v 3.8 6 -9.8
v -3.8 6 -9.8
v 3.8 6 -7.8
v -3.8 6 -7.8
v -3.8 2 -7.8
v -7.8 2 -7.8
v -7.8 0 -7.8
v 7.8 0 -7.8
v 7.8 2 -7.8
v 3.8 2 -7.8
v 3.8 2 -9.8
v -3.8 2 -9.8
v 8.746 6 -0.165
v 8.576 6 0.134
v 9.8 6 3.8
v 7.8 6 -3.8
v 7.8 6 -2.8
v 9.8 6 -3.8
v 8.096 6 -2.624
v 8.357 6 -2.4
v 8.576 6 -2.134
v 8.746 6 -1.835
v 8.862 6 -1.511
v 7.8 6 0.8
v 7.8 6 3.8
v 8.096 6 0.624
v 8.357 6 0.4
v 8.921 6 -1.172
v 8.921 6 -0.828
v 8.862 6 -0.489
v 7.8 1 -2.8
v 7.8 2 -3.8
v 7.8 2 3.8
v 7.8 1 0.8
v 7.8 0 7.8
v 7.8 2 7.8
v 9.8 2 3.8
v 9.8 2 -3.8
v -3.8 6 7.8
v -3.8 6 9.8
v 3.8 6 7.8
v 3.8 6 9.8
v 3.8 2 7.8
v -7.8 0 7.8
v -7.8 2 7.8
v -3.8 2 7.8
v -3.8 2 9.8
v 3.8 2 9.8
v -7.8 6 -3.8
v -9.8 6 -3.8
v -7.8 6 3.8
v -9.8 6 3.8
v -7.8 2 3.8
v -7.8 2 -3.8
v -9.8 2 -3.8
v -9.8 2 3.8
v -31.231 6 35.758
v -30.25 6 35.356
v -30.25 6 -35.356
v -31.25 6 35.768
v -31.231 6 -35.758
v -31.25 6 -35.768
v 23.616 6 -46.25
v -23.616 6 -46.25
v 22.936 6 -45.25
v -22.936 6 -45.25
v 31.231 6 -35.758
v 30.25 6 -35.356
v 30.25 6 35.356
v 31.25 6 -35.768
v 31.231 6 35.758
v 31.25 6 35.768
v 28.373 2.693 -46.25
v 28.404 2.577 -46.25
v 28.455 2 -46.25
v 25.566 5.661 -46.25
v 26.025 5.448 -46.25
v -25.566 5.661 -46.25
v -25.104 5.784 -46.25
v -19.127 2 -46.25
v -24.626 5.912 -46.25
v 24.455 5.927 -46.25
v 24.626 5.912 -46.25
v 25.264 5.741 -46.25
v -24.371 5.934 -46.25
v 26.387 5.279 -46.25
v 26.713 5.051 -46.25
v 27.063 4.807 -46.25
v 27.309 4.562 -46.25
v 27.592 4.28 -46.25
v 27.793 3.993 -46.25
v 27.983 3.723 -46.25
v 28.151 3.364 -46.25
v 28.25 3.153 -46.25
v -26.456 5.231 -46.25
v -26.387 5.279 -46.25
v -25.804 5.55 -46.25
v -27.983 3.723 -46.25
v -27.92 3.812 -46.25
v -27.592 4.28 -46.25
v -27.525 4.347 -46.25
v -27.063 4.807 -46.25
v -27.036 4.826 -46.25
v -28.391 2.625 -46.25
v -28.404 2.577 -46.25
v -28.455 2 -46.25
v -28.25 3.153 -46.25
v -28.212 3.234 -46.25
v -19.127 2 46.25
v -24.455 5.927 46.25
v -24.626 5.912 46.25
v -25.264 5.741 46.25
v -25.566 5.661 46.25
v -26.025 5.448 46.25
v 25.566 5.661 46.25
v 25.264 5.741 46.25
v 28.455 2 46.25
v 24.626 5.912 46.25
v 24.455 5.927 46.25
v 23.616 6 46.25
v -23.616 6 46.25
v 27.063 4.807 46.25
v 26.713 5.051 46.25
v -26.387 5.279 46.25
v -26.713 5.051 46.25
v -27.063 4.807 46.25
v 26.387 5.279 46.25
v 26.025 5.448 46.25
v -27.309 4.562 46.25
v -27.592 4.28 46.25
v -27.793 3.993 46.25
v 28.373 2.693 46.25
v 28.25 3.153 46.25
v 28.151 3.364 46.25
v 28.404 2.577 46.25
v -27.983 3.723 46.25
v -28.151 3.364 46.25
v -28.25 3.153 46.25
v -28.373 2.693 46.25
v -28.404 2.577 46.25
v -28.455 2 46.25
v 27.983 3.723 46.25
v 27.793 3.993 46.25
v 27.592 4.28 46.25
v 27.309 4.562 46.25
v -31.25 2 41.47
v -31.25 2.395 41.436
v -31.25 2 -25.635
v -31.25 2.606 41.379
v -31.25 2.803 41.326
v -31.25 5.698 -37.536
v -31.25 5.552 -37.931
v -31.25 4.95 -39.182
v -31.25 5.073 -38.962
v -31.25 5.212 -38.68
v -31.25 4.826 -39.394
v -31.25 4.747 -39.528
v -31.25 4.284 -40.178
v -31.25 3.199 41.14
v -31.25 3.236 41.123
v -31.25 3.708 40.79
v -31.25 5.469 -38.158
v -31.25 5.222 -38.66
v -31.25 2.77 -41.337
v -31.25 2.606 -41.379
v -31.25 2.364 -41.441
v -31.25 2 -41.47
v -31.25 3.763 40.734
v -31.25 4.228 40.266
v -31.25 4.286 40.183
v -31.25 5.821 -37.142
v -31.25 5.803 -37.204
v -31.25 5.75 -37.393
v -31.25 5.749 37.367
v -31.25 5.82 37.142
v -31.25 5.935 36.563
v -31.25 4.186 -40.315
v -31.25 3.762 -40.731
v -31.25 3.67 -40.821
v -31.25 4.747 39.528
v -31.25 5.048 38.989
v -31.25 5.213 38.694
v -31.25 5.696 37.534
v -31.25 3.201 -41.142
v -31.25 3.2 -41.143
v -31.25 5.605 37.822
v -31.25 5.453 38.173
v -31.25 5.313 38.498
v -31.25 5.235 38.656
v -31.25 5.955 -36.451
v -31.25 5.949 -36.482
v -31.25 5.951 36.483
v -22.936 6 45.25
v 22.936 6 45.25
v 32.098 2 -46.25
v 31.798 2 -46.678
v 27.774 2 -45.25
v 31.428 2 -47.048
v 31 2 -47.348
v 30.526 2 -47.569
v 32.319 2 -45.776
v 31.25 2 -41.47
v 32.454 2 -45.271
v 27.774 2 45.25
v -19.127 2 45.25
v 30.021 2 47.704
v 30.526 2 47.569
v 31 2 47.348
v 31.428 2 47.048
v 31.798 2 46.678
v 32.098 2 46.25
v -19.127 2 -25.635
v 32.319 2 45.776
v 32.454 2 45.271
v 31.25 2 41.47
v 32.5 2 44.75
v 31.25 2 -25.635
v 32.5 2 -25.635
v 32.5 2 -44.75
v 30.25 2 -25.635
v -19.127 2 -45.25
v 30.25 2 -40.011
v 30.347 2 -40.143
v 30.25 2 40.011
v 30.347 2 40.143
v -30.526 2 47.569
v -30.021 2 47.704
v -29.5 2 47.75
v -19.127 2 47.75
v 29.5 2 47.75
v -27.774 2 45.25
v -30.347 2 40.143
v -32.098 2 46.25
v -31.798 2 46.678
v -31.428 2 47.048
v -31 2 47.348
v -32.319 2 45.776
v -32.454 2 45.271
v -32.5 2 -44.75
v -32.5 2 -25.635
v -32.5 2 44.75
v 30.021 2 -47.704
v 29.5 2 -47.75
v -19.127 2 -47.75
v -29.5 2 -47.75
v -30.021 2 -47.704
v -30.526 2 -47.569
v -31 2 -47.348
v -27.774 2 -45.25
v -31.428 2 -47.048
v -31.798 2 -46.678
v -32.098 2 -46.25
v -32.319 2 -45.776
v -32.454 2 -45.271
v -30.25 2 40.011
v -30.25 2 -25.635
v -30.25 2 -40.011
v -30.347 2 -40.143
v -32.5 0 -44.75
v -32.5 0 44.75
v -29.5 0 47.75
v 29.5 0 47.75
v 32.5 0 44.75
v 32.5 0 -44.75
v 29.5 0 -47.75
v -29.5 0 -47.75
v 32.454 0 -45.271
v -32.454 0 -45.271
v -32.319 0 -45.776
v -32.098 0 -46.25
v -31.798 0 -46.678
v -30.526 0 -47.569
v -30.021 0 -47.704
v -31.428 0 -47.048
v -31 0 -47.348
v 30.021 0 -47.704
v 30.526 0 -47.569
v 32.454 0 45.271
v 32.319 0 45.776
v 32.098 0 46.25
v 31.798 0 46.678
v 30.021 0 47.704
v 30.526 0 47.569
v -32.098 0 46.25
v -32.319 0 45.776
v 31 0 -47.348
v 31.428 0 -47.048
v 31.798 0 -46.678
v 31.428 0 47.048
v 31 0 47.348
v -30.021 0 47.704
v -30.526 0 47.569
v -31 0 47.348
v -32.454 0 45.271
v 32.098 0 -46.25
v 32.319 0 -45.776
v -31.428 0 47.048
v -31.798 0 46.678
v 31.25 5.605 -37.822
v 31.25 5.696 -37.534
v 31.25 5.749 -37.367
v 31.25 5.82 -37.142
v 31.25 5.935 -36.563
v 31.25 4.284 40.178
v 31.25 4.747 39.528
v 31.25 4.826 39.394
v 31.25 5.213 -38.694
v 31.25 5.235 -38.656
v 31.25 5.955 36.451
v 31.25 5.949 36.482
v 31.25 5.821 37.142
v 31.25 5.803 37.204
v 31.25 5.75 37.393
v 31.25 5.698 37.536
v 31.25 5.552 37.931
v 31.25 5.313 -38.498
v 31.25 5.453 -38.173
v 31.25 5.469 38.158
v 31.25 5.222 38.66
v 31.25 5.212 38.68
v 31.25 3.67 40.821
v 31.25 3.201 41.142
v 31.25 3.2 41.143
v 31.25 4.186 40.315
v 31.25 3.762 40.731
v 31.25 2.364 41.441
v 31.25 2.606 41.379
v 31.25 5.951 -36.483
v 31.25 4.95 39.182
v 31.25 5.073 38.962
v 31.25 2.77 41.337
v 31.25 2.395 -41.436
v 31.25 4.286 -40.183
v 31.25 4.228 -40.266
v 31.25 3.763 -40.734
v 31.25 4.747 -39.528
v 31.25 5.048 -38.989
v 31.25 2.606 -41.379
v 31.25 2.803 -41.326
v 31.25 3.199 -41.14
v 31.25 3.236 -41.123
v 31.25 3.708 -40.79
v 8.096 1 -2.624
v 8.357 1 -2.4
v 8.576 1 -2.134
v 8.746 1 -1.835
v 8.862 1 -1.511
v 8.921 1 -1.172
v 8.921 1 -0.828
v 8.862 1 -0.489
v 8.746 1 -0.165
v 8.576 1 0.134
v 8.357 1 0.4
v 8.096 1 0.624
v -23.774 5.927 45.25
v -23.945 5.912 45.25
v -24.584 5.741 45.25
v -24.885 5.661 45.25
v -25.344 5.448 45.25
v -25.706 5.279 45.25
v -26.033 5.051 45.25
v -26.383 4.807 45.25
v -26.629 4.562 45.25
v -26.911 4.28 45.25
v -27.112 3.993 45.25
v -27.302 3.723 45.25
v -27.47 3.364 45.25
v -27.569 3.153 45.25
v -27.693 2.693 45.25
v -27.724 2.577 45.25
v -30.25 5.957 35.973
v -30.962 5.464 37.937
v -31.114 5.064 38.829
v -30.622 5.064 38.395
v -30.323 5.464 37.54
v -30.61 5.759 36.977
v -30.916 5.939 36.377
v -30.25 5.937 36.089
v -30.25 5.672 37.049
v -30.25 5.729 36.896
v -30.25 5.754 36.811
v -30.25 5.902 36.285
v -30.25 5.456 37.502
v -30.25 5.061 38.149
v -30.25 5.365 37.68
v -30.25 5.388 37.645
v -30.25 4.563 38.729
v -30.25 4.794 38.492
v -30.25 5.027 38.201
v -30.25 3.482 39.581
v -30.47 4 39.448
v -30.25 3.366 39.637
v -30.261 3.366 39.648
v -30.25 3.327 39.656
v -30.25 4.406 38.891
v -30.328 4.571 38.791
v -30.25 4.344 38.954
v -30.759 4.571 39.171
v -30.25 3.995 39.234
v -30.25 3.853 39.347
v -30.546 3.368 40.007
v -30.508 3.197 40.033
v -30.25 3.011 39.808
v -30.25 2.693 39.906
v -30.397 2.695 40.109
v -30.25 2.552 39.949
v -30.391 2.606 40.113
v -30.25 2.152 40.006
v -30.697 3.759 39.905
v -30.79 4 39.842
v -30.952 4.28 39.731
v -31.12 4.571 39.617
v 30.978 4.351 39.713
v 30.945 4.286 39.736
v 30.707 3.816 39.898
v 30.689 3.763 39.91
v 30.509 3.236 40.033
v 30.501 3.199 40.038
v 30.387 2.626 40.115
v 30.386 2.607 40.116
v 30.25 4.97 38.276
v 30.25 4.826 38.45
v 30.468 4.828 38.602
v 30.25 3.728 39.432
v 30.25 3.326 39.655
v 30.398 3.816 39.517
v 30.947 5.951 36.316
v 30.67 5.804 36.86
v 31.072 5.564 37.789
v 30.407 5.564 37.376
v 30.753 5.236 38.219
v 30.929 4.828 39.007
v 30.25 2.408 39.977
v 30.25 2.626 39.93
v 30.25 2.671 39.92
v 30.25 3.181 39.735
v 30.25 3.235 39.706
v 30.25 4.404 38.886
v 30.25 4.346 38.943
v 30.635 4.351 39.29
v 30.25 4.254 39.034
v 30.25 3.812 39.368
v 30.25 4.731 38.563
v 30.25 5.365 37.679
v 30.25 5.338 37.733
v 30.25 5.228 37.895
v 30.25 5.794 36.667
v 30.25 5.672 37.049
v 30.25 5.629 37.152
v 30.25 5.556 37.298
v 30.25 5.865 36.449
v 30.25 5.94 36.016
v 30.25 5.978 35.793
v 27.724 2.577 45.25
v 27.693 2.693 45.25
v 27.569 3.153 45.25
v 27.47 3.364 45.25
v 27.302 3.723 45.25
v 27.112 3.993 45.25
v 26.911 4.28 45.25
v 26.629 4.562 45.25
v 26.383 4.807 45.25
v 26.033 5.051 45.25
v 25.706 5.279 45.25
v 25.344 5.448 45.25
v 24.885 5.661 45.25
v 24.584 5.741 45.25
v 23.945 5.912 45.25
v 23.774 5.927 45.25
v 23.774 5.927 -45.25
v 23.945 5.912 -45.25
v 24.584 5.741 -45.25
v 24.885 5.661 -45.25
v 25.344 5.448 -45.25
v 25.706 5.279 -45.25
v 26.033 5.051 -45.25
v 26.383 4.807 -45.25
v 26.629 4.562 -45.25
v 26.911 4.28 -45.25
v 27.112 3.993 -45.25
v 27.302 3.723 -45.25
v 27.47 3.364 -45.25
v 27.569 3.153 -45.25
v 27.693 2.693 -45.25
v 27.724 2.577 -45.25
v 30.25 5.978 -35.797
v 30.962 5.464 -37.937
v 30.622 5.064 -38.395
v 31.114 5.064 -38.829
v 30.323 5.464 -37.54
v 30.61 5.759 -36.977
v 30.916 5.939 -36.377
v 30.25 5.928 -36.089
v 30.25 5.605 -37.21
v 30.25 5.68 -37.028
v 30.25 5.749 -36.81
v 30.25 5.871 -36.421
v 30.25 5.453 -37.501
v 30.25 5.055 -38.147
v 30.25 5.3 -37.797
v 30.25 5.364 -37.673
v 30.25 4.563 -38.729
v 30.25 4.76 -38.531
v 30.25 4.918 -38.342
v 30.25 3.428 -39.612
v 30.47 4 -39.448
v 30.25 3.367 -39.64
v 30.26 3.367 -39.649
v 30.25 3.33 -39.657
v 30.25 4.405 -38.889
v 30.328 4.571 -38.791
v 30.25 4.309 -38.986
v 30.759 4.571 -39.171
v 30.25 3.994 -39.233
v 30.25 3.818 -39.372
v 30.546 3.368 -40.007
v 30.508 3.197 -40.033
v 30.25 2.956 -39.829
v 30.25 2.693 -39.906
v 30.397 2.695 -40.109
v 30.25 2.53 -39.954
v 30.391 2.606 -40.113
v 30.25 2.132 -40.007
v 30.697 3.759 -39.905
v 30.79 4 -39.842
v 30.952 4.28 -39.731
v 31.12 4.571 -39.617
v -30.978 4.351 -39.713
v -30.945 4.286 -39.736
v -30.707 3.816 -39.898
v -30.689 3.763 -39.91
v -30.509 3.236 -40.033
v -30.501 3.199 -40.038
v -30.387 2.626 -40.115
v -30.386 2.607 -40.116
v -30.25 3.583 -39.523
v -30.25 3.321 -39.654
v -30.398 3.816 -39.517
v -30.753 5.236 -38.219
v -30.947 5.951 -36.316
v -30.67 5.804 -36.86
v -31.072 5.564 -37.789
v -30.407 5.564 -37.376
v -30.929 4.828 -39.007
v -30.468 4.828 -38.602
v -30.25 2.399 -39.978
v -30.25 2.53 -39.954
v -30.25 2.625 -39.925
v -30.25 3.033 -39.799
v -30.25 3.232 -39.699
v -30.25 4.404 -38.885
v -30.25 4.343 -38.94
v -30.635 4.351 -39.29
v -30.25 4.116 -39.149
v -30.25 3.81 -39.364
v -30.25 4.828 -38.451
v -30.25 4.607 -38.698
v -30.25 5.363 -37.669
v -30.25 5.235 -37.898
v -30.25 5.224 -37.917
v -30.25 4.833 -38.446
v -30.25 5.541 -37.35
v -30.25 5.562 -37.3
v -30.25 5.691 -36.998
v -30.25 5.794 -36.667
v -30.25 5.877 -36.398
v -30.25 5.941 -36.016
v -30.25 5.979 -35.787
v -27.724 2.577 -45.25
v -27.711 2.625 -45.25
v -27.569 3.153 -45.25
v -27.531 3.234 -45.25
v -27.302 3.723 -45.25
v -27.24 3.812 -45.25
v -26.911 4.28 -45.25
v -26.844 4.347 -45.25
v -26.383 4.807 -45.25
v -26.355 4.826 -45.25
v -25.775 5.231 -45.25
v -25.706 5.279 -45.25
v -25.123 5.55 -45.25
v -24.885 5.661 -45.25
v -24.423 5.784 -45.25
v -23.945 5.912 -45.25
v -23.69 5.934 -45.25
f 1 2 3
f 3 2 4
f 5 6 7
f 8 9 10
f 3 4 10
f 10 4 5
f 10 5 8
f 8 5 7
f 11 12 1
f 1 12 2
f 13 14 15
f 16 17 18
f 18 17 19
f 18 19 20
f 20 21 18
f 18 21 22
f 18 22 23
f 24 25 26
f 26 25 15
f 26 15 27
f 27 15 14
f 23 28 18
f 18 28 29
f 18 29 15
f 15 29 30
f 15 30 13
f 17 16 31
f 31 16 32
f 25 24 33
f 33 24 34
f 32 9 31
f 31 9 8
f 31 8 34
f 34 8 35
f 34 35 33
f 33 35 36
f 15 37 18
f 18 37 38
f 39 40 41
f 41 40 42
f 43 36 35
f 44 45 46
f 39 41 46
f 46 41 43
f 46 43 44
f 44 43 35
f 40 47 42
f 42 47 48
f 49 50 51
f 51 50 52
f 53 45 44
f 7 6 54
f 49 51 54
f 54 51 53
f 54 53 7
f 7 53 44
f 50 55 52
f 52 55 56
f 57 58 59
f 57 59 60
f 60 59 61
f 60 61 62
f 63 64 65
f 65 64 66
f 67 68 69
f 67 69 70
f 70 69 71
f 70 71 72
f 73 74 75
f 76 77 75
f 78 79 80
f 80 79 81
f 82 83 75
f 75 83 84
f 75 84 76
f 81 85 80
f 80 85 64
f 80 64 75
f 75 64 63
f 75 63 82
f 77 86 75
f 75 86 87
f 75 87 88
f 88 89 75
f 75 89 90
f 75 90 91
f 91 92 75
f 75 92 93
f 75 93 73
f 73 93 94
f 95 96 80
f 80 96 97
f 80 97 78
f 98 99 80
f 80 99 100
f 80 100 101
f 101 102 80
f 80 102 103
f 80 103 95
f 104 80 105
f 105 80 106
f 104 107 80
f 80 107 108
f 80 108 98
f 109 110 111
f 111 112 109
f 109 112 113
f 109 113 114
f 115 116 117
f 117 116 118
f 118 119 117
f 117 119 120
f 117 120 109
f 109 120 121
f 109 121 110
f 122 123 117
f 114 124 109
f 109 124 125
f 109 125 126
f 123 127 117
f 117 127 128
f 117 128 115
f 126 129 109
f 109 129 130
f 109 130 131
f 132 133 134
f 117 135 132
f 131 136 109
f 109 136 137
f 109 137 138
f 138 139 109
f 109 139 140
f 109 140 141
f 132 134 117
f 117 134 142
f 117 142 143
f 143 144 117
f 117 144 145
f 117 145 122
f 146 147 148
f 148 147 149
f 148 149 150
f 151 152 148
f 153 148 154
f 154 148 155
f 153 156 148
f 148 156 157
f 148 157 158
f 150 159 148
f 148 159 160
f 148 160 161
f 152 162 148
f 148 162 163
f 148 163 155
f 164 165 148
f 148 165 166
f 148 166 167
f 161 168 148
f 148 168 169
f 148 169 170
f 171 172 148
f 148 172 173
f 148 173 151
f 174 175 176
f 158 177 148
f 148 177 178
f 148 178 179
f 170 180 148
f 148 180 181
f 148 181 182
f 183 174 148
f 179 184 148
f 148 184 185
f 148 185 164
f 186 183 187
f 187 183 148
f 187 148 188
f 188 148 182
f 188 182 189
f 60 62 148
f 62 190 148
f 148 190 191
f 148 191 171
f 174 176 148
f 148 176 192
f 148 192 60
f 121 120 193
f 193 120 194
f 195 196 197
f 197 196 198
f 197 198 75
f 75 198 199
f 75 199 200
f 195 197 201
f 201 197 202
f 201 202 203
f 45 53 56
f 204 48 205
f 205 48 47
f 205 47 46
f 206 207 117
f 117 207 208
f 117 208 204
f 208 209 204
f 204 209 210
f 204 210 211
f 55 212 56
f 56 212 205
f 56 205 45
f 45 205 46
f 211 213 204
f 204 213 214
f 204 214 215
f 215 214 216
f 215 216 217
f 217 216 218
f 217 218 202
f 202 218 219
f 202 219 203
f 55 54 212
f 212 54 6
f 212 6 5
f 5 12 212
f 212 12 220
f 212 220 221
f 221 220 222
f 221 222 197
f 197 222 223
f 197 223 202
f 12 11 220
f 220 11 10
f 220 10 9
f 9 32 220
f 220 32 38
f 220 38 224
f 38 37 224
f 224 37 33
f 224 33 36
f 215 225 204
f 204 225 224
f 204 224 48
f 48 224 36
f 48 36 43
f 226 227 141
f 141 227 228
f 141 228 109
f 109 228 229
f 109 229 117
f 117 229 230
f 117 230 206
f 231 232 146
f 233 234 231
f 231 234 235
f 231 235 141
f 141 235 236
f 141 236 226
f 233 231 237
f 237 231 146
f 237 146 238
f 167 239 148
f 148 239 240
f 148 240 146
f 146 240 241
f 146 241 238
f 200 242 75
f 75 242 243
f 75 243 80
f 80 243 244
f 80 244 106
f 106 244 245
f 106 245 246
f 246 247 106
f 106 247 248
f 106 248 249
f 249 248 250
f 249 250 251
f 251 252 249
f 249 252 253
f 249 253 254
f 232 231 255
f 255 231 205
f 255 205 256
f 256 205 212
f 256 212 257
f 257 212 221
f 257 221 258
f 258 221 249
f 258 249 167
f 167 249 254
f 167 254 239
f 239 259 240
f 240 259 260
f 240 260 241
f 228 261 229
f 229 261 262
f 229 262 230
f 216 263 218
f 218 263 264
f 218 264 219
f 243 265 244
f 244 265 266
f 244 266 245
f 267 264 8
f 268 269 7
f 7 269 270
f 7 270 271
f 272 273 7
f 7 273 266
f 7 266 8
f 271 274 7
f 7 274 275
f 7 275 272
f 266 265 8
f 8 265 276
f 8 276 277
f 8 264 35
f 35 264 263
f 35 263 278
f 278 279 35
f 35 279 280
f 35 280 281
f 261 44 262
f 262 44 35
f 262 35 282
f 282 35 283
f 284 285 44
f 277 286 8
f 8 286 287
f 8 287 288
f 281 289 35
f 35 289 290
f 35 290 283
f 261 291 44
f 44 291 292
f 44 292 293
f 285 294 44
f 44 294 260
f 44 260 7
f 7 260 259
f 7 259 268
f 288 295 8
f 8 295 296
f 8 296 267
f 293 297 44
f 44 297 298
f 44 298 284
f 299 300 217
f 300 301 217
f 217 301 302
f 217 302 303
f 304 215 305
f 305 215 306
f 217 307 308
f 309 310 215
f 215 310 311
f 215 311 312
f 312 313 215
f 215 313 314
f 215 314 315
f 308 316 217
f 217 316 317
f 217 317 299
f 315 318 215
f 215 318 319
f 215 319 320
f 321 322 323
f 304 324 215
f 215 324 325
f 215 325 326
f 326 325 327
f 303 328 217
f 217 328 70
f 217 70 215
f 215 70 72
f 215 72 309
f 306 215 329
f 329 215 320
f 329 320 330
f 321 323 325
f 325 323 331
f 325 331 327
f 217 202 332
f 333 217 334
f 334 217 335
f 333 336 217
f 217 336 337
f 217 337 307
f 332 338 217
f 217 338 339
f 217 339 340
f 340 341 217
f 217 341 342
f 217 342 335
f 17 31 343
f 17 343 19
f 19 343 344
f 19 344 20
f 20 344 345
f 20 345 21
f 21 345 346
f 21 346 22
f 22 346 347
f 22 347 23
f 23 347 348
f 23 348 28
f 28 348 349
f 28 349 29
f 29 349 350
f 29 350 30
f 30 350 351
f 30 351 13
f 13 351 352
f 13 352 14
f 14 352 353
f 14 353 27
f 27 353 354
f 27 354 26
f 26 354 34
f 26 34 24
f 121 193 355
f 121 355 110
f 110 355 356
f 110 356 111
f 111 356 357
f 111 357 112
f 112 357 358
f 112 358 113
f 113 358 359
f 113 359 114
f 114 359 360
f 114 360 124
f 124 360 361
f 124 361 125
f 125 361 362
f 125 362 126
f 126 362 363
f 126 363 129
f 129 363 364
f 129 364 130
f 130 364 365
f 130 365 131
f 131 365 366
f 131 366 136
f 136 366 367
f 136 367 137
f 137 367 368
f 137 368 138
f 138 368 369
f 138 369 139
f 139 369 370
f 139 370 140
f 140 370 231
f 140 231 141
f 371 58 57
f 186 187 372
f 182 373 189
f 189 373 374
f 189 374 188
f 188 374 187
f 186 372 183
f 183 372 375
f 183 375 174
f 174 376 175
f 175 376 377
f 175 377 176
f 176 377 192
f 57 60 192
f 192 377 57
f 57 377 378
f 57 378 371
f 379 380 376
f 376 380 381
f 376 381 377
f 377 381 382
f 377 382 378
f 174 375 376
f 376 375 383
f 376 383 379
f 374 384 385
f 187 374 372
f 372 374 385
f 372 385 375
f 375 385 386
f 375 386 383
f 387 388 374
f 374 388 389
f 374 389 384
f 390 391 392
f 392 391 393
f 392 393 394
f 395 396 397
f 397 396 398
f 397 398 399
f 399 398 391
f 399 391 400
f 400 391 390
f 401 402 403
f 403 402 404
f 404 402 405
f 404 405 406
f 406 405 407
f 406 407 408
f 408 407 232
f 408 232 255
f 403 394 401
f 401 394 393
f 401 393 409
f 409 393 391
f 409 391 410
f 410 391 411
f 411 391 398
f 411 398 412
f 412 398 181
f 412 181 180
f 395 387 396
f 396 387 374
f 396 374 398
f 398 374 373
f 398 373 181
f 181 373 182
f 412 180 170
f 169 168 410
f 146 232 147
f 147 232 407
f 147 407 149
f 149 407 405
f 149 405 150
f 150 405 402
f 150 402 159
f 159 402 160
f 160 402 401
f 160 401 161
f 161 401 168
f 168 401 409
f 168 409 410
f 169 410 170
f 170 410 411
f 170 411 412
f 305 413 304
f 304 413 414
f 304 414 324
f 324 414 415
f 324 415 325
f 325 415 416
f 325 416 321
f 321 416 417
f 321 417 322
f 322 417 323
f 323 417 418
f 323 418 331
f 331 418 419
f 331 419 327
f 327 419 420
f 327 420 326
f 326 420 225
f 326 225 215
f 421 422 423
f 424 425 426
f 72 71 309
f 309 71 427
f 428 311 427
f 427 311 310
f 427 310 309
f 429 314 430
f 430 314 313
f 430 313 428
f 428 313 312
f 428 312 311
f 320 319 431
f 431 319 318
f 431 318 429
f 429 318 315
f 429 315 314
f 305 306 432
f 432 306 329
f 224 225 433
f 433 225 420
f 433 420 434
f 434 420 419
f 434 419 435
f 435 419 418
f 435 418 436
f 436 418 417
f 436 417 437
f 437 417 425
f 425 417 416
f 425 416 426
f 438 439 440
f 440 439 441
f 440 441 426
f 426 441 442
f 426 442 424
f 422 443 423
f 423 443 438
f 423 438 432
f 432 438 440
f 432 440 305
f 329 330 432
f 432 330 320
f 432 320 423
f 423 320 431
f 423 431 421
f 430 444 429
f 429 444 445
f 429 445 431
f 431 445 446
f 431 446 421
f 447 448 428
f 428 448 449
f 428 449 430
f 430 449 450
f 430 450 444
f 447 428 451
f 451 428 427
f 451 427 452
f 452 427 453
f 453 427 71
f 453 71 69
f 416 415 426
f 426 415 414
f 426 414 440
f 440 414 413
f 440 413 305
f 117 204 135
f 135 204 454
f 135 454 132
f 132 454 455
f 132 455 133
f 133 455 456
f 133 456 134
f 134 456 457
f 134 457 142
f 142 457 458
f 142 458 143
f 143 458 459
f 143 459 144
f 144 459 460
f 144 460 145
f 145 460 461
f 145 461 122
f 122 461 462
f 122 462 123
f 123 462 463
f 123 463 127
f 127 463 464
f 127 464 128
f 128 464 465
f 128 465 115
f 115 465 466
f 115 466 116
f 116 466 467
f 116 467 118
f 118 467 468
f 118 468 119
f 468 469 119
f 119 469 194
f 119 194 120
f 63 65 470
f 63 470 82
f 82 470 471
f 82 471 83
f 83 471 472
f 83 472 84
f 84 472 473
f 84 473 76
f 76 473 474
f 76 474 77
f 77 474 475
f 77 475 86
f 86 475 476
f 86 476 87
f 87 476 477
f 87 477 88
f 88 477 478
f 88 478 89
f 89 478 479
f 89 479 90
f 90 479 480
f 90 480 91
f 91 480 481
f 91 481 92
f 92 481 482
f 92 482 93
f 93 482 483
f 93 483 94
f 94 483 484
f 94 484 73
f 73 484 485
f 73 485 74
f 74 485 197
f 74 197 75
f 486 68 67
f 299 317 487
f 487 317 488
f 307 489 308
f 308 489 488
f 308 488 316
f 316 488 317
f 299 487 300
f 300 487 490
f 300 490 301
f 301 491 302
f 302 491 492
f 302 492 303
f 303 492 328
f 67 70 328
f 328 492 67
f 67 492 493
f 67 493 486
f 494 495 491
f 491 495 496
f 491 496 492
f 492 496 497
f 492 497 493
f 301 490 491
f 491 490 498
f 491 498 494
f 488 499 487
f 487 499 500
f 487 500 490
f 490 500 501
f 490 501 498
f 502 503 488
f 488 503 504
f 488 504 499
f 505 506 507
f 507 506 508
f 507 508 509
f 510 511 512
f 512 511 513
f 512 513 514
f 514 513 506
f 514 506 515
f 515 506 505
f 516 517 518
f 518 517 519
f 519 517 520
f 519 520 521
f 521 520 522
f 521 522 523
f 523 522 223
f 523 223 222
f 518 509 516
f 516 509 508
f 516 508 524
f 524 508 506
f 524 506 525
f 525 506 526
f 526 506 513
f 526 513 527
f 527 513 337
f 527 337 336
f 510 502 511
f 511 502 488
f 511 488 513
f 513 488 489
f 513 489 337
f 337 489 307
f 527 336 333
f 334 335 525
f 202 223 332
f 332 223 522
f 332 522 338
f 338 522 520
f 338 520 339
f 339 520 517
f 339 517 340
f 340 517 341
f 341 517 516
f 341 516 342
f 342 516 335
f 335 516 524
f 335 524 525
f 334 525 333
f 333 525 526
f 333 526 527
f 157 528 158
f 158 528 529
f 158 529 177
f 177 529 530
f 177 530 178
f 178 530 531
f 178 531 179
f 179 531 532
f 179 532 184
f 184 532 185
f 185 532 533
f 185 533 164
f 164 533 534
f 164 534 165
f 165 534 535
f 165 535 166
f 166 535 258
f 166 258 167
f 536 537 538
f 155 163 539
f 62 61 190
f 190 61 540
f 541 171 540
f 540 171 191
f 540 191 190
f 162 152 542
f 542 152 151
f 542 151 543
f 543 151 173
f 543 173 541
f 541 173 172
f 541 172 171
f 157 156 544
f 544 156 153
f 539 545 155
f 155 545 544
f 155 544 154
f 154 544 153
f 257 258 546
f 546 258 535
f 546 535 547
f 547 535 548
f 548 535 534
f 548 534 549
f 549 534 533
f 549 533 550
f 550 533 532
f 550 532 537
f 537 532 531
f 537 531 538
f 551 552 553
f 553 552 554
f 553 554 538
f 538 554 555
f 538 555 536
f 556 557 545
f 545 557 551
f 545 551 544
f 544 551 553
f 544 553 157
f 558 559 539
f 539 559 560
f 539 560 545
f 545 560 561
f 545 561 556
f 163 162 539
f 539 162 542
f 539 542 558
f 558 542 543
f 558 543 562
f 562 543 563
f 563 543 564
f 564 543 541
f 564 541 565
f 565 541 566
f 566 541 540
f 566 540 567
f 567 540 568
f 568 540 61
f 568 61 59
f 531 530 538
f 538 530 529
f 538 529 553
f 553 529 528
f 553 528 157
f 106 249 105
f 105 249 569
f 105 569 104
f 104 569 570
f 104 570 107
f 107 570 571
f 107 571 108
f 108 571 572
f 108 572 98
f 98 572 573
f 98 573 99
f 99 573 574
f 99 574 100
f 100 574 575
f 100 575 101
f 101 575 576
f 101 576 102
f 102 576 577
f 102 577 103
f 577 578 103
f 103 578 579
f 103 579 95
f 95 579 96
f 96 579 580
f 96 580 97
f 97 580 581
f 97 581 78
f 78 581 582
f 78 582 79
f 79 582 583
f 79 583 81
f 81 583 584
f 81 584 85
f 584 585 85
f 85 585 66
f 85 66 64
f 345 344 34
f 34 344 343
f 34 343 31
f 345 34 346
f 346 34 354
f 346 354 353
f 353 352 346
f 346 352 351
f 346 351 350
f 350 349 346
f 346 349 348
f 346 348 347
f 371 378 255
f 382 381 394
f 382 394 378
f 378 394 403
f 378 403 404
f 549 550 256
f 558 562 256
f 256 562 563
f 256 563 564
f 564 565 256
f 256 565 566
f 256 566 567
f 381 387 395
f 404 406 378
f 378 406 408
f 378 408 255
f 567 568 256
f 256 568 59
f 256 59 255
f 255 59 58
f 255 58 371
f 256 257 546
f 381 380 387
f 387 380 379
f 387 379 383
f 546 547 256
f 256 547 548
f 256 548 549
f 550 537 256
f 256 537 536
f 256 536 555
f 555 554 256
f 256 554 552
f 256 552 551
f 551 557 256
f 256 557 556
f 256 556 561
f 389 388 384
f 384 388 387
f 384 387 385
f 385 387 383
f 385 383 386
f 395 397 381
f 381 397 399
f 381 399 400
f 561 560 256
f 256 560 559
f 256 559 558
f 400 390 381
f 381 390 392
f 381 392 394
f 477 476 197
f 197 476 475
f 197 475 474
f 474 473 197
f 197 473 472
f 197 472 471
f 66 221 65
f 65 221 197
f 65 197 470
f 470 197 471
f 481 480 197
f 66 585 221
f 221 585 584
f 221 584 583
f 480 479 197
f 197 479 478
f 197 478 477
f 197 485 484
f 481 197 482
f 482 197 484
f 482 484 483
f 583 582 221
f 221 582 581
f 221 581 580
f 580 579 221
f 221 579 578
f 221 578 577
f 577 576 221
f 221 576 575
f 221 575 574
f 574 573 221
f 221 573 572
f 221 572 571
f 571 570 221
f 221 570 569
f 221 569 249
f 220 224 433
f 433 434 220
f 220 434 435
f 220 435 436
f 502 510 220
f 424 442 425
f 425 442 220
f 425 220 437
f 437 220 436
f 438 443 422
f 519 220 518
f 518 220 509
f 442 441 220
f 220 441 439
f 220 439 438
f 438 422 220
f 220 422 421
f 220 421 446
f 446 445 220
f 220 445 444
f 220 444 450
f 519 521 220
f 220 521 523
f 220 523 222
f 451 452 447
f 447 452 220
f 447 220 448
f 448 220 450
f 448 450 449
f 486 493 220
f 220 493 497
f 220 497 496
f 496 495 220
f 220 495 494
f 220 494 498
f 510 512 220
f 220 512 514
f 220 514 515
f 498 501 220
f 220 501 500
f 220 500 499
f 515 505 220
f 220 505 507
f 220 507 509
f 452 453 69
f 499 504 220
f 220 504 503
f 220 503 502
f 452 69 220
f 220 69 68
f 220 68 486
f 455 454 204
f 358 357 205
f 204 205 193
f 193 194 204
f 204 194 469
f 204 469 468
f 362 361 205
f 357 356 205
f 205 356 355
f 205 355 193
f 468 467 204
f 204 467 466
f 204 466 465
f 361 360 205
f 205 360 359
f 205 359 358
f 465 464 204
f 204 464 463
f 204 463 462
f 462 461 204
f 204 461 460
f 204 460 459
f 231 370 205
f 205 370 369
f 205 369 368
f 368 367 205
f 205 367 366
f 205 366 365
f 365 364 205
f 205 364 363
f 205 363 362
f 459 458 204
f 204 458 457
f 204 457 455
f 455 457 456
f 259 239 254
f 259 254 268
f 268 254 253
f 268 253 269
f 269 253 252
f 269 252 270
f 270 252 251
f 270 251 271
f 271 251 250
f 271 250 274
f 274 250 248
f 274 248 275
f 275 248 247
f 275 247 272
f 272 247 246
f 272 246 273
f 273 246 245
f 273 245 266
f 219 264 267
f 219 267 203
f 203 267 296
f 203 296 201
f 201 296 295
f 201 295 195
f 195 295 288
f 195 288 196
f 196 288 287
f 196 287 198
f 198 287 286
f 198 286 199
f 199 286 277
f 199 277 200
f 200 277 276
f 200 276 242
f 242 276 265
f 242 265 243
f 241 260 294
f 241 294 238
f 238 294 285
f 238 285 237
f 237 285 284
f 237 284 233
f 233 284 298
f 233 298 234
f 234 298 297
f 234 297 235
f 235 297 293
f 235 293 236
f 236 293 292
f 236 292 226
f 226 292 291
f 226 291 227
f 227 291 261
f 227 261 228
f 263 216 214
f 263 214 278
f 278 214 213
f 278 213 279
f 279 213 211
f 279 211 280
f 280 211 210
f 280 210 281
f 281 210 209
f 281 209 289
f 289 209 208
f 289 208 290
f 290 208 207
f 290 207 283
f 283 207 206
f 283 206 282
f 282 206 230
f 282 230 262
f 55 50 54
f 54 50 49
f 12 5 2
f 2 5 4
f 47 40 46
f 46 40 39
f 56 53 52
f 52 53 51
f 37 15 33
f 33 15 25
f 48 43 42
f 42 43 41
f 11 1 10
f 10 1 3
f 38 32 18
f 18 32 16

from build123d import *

# Parameters (mm, degrees)
BOSS_EXTRUDE1_DEPTH = 2
SKETCH1_3_W         = 62.50000000000001
SKETCH1_3_H         = 92.5
BOSS_EXTRUDE2_DEPTH = 6
BOSS_EXTRUDE3_DEPTH = 6
CUT_EXTRUDE2_DEPTH  = 39.00000000000001
CUT_EXTRUDE3_START  = 2
CUT_EXTRUDE3_DEPTH  = 8
FILLET1_R           = 4
BOSS_EXTRUDE4_DEPTH = 1
CUT_EXTRUDE7_DEPTH  = 4
FILLET2_R           = 3
SKETCH9_W           = 5.999999999999999
SKETCH9_H           = 6
SKETCH9_H_2         = 5.999999999999999
CUT_EXTRUDE8_DEPTH  = 10


with BuildPart() as part:
    # Sketch1 → Boss-Extrude1 (new body)
    with BuildSketch(Plane(origin=(0, 0, 0), x_dir=(1, 0, 0), z_dir=(0, 1, 0))):
        Polygon((-32.5, 47.74999999999999), (32.5, 47.74999999999999), (32.50000000000001, -47.75000000000001), (-32.49999999999998, -47.75000000000001), align=None)
    extrude(amount=BOSS_EXTRUDE1_DEPTH)

    # Sketch1<3> → Boss-Extrude2 (add)
    with BuildSketch(Plane(origin=(0, 0, 0), x_dir=(1, 0, 0), z_dir=(0, 1, 0))):
        Rectangle(SKETCH1_3_W, SKETCH1_3_H)
    extrude(amount=BOSS_EXTRUDE2_DEPTH)

    # Sketch2<4> → Boss-Extrude3 (add)
    with BuildSketch(Plane(origin=(0, 0, 0), x_dir=(1, 0, 0), z_dir=(0, 1, 0))):
        Polygon((-9.799999999999999, -9.799999999999999), (9.799999999999999, -9.799999999999999), (9.799999999999997, 9.799999999999999), (-9.8, 9.799999999999999), align=None)
    extrude(amount=BOSS_EXTRUDE3_DEPTH)

    # Sketch2 → Cut-Extrude2 (cut)
    with BuildSketch(Plane(origin=(0, 0, 0), x_dir=(1, 0, 0), z_dir=(0, 1, 0))):
        with BuildLine():
            Line((-7.800000000000002, 7.800000000000001), (-7.8, -7.799999999999999))
            Line((-7.8, -7.799999999999999), (7.8, -7.799999999999999))
            Line((7.8, -7.799999999999999), (7.8, -0.7999999999999989))
            ThreePointArc((7.8, -0.7999999999999985), (8.928220211291862, 1.0000000000000016), (7.799999999999999, 2.8000000000000007))
            Line((7.7999999999999785, 2.8000000000000007), (7.799999999999998, 7.800000000000001))
            Line((7.799999999999998, 7.800000000000001), (-7.800000000000002, 7.800000000000001))
        make_face()
    extrude(amount=CUT_EXTRUDE2_DEPTH, mode=Mode.SUBTRACT)

    # Sketch3 → Cut-Extrude3 (cut)
    with BuildSketch(Plane(origin=(0, 0, 0), x_dir=(1, 0, 0), z_dir=(0, 1, 0)).offset(CUT_EXTRUDE3_START)):
        with BuildLine():
            Line((-30.43328770425558, 49.15666281909306), (-34.56671229574442, 46.343337180906936))
            Line((-34.56671229574442, 46.343337180906936), (-30.34672383846524, 40.14320029367368))
            ThreePointArc((-30.346723838465234, 40.14320029367369), (-26.87334872362776, 39.48315081702232), (-26.213299246976405, 42.9565259318598))
            Line((-26.2132992469764, 42.9565259318598), (-30.43328770425558, 49.15666281909306))
        make_face()
        with BuildLine():
            Line((34.56671229574442, 46.343337180906936), (30.43328770425558, 49.15666281909306))
            Line((30.43328770425558, 49.15666281909306), (26.21329924697641, 42.9565259318598))
            ThreePointArc((26.213299246976415, 42.956525931859794), (26.87334872362777, 39.48315081702232), (30.346723838465245, 40.14320029367368))
            Line((30.346723838465245, 40.14320029367368), (34.56671229574442, 46.343337180906936))
        make_face()
        with BuildLine():
            Line((-30.346723838465223, -40.143200293673694), (-34.566712295744395, -46.34333718090695))
            Line((-34.566712295744395, -46.34333718090695), (-30.43328770425555, -49.15666281909307))
            Line((-30.43328770425555, -49.15666281909307), (-26.213299246976373, -42.95652593185982))
            ThreePointArc((-26.213299246976383, -42.956525931859815), (-26.873348723627743, -39.48315081702233), (-30.346723838465227, -40.143200293673694))
        make_face()
        with BuildLine():
            Line((26.213299246976398, -42.95652593185982), (30.433287704255594, -49.15666281909309))
            Line((30.433287704255594, -49.15666281909309), (34.56671229574444, -46.34333718090698))
            Line((34.56671229574444, -46.34333718090698), (30.34672383846524, -40.143200293673694))
            ThreePointArc((30.346723838465252, -40.14320029367369), (26.873348723627778, -39.48315081702233), (26.213299246976423, -42.95652593185981))
        make_face()
    extrude(amount=CUT_EXTRUDE3_DEPTH, mode=Mode.SUBTRACT)

    # Fillet1
    # the kernel refuses this fillet: 4 mm, written as the material it takes off along each edge
    with BuildSketch(Plane(origin=(-36.87665127637225, 6, 49.73717060629096), x_dir=(-0.8266849182977679, 0, -0.5626651276372232), z_dir=(0.5626651276372232, 0, -0.826684918297768))) as fillet1_piece_1:
        with BuildLine():
            CenterArc((FILLET1_R, -FILLET1_R), FILLET1_R, 90, 90)
            Line((0, -FILLET1_R), (0, 0))
            Line((0, 0), (FILLET1_R, 0))
        make_face()
    extrude(amount=11.605353019348973, mode=Mode.SUBTRACT)
    with BuildSketch(Plane(origin=(-26.213299246976373, 6, 42.95652593185982), x_dir=(0.8266849182977672, 0, 0.5626651276372243), z_dir=(-0.5626651276372243, 0, 0.8266849182977672))) as fillet1_piece_2:
        with BuildLine():
            CenterArc((FILLET1_R, -FILLET1_R), FILLET1_R, 90, 90)
            Line((-1.06e-15, -FILLET1_R), (0, 0))
            Line((0, 0), (FILLET1_R, 0))
        make_face()
    extrude(amount=13.983953251405376, mode=Mode.SUBTRACT)
    with BuildSketch(Plane(origin=(34.0815820880514, 6, 54.51684918297768), x_dir=(-0.826684918297767, 0, 0.5626651276372246), z_dir=(-0.5626651276372246, 0, -0.826684918297767))) as fillet1_piece_3:
        with BuildLine():
            CenterArc((FILLET1_R, -FILLET1_R), FILLET1_R, 90, 90)
            Line((-1.88e-15, -FILLET1_R), (0, 0))
            Line((0, 0), (FILLET1_R, 0))
        make_face()
    extrude(amount=13.983953251405392, mode=Mode.SUBTRACT)
    with BuildSketch(Plane(origin=(30.346723838465245, 6, 40.1432002936737), x_dir=(0.8266849182977677, 0, -0.5626651276372238), z_dir=(0.5626651276372238, 0, 0.8266849182977677))) as fillet1_piece_4:
        with BuildLine():
            CenterArc((FILLET1_R, -FILLET1_R), FILLET1_R, 90, 90)
            Line((0, -FILLET1_R), (0, 0))
            Line((0, 0), (FILLET1_R, 0))
        make_face()
    extrude(amount=11.605353019348959, mode=Mode.SUBTRACT)
    with BuildSketch(Plane(origin=(36.87665127637224, 6, -49.73717060629088), x_dir=(0.8266849182977675, 0, 0.562665127637224), z_dir=(-0.562665127637224, 0, 0.8266849182977676))) as fillet1_piece_5:
        with BuildLine():
            CenterArc((FILLET1_R, -FILLET1_R), FILLET1_R, 90, 90)
            Line((-4e-15, -FILLET1_R), (0, 0))
            Line((0, 0), (FILLET1_R, 0))
        make_face()
    extrude(amount=11.605353019348904, mode=Mode.SUBTRACT)
    with BuildSketch(Plane(origin=(26.21329924697641, 6, -42.9565259318598), x_dir=(-0.826684918297768, 0, -0.5626651276372232), z_dir=(0.5626651276372232, 0, -0.826684918297768))) as fillet1_piece_6:
        with BuildLine():
            CenterArc((FILLET1_R, -FILLET1_R), FILLET1_R, 90, 90)
            Line((-1.88e-15, -FILLET1_R), (0, 0))
            Line((0, 0), (FILLET1_R, 0))
        make_face()
    extrude(amount=13.98395325140539, mode=Mode.SUBTRACT)
    with BuildSketch(Plane(origin=(-34.08158208805138, 6, -54.51684918297765), x_dir=(0.8266849182977676, 0, -0.562665127637224), z_dir=(0.562665127637224, 0, 0.8266849182977676))) as fillet1_piece_7:
        with BuildLine():
            CenterArc((FILLET1_R, -FILLET1_R), FILLET1_R, 90, 90)
            Line((0, -FILLET1_R), (0, 0))
            Line((0, 0), (FILLET1_R, 0))
        make_face()
    extrude(amount=13.983953251405376, mode=Mode.SUBTRACT)
    with BuildSketch(Plane(origin=(-30.34672383846524, 6, -40.14320029367368), x_dir=(-0.8266849182977674, 0, 0.5626651276372242), z_dir=(-0.5626651276372242, 0, -0.8266849182977674))) as fillet1_piece_8:
        with BuildLine():
            CenterArc((FILLET1_R, -FILLET1_R), FILLET1_R, 90, 90)
            Line((1.06e-15, -FILLET1_R), (0, 0))
            Line((0, 0), (FILLET1_R, 0))
        make_face()
    extrude(amount=11.605353019348907, mode=Mode.SUBTRACT)
    with BuildSketch(Plane(origin=(-28.2800115427208, 6, 41.549863112766744), x_dir=(-0.8266849182977704, 0, -0.5626651276372198), z_dir=(-0.5626651276372198, 0, 0.8266849182977704))) as fillet1_piece_9:
        with BuildLine():
            CenterArc((2.5000000000000013 + FILLET1_R, FILLET1_R), FILLET1_R, 180, 90)
            Line((2.4999999999999996, FILLET1_R), (2.5000000000000013, 0))
            Line((2.5000000000000013, 0), (2.5000000000000013 + FILLET1_R, 0))
        make_face()
    revolve(axis=Axis((-28.2800115427208, 6, 41.549863112766744), (0, -1, 0)), revolution_arc=180.0000000000006, mode=Mode.SUBTRACT)
    with BuildSketch(Plane(origin=(28.280011542720835, 6, 41.549863112766744), x_dir=(-0.8266849182977659, 0, 0.5626651276372262), z_dir=(0.5626651276372262, 0, 0.8266849182977659))) as fillet1_piece_10:
        with BuildLine():
            CenterArc((2.499999999999998 + FILLET1_R, FILLET1_R), FILLET1_R, 180, 90)
            Line((2.4999999999999996, FILLET1_R), (2.499999999999998, 0))
            Line((2.499999999999998, 0), (2.499999999999998 + FILLET1_R, 0))
        make_face()
    revolve(axis=Axis((28.280011542720835, 6, 41.549863112766744), (0, -1, 0)), revolution_arc=180.00000000000017, mode=Mode.SUBTRACT)
    with BuildSketch(Plane(origin=(28.28001154272083, 6, -41.54986311276673), x_dir=(0.826684918297769, 0, 0.5626651276372218), z_dir=(0.5626651276372218, 0, -0.826684918297769))) as fillet1_piece_11:
        with BuildLine():
            CenterArc((2.499999999999993 + FILLET1_R, FILLET1_R), FILLET1_R, 180, 90)
            Line((2.49999999999999, FILLET1_R), (2.499999999999993, 0))
            Line((2.499999999999993, 0), (2.499999999999993 + FILLET1_R, 0))
        make_face()
    revolve(axis=Axis((28.28001154272083, 6, -41.54986311276673), (0, -1, 0)), revolution_arc=180.00000000000037, mode=Mode.SUBTRACT)
    with BuildSketch(Plane(origin=(-28.280011542720814, 6, -41.54986311276674), x_dir=(0.8266849182977655, 0, -0.562665127637227), z_dir=(-0.562665127637227, 0, -0.8266849182977655))) as fillet1_piece_12:
        with BuildLine():
            CenterArc((2.499999999999995 + FILLET1_R, FILLET1_R), FILLET1_R, 180, 90)
            Line((2.499999999999995, FILLET1_R), (2.499999999999995, 0))
            Line((2.499999999999995, 0), (2.499999999999995 + FILLET1_R, 0))
        make_face()
    revolve(axis=Axis((-28.280011542720814, 6, -41.54986311276674), (0, -1, 0)), revolution_arc=180.0000000000004, mode=Mode.SUBTRACT)

    # Sketch7 → Boss-Extrude4 (add)
    with BuildSketch(Plane(origin=(0, 0, 0), x_dir=(1, 0, 0), z_dir=(0, 1, 0))):
        with BuildLine():
            Line((7.799999999999999, 2.8000000000000003), (7.799999999999998, -0.799999999999999))
            ThreePointArc((7.799999999999998, -0.799999999999999), (8.928220211291862, 1.0000000000000004), (7.799999999999999, 2.8000000000000003))
        make_face()
    extrude(amount=BOSS_EXTRUDE4_DEPTH)

    # Sketch5 → Cut-Extrude7 (cut)
    with BuildSketch(Plane(origin=(0, 6, 0), x_dir=(1, 0, 0), z_dir=(0, 1, 0))):
        Polygon((-21.75628660862557, -45.25000000000001), (21.756286608625608, -45.25000000000001), (30.25, -45.25000000000001), (30.25, -34.31321019320602), (30.25, 34.31321019320601), (30.25, 45.24999999999999), (21.7562866086256, 45.24999999999999), (-21.75628660862558, 45.24999999999999), (-30.25, 45.24999999999999), (-30.25, 34.31321019320601), (-30.25, -34.31321019320603), (-30.25, -45.25000000000001), align=None)
        Polygon((9.799999999999999, -9.799999999999999), (-9.799999999999999, -9.799999999999999), (-9.800000000000002, 9.799999999999999), (9.799999999999995, 9.799999999999999), align=None, mode=Mode.SUBTRACT)
    extrude(amount=-CUT_EXTRUDE7_DEPTH, mode=Mode.SUBTRACT)

    # Fillet2
    fillet2_edges = [part.edges().sort_by_distance(p)[0] for p in [
        (-32.5, 1, -47.74999999999999),
        (32.5, 1, -47.74999999999999),
        (32.50000000000001, 1, 47.75000000000001),
        (-32.49999999999998, 1, 47.75000000000001),
    ]]
    fillet(fillet2_edges, radius=FILLET2_R)

    # Sketch9 → Cut-Extrude8 (cut)
    with BuildSketch(Plane(origin=(0, 2, 0), x_dir=(1, 0, 0), z_dir=(0, 1, 0))):
        Polygon((-9.800000000000002, 9.799999999999999), (-3.800000000000001, 9.799999999999999), (-3.8000000000000003, 3.7999999999999994), (-9.800000000000002, 3.7999999999999994), align=None)
        with Locations((-6.799999999999999, -6.799999999999999)):
            Rectangle(SKETCH9_W, SKETCH9_H)
        with Locations((6.799999999999999, -6.799999999999999)):
            Rectangle(SKETCH9_W, SKETCH9_H_2)
        Polygon((9.799999999999995, 9.799999999999999), (3.7999999999999954, 9.799999999999999), (3.7999999999999963, 3.7999999999999985), (9.799999999999995, 3.7999999999999994), align=None)
    extrude(amount=CUT_EXTRUDE8_DEPTH, mode=Mode.SUBTRACT)


solid = part.part
